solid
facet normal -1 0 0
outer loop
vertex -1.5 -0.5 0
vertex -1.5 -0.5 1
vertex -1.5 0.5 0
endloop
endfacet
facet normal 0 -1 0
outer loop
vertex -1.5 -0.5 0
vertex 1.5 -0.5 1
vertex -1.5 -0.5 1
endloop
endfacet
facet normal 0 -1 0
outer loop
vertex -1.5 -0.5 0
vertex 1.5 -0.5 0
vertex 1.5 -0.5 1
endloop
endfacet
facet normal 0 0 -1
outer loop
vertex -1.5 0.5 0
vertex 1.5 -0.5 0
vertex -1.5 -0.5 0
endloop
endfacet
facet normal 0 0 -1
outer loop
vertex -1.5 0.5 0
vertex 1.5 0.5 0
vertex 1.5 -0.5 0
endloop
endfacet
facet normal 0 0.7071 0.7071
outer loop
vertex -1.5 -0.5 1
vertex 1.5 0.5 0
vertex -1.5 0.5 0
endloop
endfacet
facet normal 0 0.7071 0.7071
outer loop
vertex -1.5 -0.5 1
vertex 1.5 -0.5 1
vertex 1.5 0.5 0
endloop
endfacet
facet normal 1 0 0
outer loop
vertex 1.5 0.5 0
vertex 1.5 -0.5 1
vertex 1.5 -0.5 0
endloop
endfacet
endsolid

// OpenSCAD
// Triangular Prism (Right) for Stacks of Shapes
// by Slashee the Cow

color("Crimson")
translate([-1.5, -0.5, 0])
    rotate([90,0,90])
        linear_extrude(3, true)
            polygon([[0,0],[0,1],[1,0]]);
